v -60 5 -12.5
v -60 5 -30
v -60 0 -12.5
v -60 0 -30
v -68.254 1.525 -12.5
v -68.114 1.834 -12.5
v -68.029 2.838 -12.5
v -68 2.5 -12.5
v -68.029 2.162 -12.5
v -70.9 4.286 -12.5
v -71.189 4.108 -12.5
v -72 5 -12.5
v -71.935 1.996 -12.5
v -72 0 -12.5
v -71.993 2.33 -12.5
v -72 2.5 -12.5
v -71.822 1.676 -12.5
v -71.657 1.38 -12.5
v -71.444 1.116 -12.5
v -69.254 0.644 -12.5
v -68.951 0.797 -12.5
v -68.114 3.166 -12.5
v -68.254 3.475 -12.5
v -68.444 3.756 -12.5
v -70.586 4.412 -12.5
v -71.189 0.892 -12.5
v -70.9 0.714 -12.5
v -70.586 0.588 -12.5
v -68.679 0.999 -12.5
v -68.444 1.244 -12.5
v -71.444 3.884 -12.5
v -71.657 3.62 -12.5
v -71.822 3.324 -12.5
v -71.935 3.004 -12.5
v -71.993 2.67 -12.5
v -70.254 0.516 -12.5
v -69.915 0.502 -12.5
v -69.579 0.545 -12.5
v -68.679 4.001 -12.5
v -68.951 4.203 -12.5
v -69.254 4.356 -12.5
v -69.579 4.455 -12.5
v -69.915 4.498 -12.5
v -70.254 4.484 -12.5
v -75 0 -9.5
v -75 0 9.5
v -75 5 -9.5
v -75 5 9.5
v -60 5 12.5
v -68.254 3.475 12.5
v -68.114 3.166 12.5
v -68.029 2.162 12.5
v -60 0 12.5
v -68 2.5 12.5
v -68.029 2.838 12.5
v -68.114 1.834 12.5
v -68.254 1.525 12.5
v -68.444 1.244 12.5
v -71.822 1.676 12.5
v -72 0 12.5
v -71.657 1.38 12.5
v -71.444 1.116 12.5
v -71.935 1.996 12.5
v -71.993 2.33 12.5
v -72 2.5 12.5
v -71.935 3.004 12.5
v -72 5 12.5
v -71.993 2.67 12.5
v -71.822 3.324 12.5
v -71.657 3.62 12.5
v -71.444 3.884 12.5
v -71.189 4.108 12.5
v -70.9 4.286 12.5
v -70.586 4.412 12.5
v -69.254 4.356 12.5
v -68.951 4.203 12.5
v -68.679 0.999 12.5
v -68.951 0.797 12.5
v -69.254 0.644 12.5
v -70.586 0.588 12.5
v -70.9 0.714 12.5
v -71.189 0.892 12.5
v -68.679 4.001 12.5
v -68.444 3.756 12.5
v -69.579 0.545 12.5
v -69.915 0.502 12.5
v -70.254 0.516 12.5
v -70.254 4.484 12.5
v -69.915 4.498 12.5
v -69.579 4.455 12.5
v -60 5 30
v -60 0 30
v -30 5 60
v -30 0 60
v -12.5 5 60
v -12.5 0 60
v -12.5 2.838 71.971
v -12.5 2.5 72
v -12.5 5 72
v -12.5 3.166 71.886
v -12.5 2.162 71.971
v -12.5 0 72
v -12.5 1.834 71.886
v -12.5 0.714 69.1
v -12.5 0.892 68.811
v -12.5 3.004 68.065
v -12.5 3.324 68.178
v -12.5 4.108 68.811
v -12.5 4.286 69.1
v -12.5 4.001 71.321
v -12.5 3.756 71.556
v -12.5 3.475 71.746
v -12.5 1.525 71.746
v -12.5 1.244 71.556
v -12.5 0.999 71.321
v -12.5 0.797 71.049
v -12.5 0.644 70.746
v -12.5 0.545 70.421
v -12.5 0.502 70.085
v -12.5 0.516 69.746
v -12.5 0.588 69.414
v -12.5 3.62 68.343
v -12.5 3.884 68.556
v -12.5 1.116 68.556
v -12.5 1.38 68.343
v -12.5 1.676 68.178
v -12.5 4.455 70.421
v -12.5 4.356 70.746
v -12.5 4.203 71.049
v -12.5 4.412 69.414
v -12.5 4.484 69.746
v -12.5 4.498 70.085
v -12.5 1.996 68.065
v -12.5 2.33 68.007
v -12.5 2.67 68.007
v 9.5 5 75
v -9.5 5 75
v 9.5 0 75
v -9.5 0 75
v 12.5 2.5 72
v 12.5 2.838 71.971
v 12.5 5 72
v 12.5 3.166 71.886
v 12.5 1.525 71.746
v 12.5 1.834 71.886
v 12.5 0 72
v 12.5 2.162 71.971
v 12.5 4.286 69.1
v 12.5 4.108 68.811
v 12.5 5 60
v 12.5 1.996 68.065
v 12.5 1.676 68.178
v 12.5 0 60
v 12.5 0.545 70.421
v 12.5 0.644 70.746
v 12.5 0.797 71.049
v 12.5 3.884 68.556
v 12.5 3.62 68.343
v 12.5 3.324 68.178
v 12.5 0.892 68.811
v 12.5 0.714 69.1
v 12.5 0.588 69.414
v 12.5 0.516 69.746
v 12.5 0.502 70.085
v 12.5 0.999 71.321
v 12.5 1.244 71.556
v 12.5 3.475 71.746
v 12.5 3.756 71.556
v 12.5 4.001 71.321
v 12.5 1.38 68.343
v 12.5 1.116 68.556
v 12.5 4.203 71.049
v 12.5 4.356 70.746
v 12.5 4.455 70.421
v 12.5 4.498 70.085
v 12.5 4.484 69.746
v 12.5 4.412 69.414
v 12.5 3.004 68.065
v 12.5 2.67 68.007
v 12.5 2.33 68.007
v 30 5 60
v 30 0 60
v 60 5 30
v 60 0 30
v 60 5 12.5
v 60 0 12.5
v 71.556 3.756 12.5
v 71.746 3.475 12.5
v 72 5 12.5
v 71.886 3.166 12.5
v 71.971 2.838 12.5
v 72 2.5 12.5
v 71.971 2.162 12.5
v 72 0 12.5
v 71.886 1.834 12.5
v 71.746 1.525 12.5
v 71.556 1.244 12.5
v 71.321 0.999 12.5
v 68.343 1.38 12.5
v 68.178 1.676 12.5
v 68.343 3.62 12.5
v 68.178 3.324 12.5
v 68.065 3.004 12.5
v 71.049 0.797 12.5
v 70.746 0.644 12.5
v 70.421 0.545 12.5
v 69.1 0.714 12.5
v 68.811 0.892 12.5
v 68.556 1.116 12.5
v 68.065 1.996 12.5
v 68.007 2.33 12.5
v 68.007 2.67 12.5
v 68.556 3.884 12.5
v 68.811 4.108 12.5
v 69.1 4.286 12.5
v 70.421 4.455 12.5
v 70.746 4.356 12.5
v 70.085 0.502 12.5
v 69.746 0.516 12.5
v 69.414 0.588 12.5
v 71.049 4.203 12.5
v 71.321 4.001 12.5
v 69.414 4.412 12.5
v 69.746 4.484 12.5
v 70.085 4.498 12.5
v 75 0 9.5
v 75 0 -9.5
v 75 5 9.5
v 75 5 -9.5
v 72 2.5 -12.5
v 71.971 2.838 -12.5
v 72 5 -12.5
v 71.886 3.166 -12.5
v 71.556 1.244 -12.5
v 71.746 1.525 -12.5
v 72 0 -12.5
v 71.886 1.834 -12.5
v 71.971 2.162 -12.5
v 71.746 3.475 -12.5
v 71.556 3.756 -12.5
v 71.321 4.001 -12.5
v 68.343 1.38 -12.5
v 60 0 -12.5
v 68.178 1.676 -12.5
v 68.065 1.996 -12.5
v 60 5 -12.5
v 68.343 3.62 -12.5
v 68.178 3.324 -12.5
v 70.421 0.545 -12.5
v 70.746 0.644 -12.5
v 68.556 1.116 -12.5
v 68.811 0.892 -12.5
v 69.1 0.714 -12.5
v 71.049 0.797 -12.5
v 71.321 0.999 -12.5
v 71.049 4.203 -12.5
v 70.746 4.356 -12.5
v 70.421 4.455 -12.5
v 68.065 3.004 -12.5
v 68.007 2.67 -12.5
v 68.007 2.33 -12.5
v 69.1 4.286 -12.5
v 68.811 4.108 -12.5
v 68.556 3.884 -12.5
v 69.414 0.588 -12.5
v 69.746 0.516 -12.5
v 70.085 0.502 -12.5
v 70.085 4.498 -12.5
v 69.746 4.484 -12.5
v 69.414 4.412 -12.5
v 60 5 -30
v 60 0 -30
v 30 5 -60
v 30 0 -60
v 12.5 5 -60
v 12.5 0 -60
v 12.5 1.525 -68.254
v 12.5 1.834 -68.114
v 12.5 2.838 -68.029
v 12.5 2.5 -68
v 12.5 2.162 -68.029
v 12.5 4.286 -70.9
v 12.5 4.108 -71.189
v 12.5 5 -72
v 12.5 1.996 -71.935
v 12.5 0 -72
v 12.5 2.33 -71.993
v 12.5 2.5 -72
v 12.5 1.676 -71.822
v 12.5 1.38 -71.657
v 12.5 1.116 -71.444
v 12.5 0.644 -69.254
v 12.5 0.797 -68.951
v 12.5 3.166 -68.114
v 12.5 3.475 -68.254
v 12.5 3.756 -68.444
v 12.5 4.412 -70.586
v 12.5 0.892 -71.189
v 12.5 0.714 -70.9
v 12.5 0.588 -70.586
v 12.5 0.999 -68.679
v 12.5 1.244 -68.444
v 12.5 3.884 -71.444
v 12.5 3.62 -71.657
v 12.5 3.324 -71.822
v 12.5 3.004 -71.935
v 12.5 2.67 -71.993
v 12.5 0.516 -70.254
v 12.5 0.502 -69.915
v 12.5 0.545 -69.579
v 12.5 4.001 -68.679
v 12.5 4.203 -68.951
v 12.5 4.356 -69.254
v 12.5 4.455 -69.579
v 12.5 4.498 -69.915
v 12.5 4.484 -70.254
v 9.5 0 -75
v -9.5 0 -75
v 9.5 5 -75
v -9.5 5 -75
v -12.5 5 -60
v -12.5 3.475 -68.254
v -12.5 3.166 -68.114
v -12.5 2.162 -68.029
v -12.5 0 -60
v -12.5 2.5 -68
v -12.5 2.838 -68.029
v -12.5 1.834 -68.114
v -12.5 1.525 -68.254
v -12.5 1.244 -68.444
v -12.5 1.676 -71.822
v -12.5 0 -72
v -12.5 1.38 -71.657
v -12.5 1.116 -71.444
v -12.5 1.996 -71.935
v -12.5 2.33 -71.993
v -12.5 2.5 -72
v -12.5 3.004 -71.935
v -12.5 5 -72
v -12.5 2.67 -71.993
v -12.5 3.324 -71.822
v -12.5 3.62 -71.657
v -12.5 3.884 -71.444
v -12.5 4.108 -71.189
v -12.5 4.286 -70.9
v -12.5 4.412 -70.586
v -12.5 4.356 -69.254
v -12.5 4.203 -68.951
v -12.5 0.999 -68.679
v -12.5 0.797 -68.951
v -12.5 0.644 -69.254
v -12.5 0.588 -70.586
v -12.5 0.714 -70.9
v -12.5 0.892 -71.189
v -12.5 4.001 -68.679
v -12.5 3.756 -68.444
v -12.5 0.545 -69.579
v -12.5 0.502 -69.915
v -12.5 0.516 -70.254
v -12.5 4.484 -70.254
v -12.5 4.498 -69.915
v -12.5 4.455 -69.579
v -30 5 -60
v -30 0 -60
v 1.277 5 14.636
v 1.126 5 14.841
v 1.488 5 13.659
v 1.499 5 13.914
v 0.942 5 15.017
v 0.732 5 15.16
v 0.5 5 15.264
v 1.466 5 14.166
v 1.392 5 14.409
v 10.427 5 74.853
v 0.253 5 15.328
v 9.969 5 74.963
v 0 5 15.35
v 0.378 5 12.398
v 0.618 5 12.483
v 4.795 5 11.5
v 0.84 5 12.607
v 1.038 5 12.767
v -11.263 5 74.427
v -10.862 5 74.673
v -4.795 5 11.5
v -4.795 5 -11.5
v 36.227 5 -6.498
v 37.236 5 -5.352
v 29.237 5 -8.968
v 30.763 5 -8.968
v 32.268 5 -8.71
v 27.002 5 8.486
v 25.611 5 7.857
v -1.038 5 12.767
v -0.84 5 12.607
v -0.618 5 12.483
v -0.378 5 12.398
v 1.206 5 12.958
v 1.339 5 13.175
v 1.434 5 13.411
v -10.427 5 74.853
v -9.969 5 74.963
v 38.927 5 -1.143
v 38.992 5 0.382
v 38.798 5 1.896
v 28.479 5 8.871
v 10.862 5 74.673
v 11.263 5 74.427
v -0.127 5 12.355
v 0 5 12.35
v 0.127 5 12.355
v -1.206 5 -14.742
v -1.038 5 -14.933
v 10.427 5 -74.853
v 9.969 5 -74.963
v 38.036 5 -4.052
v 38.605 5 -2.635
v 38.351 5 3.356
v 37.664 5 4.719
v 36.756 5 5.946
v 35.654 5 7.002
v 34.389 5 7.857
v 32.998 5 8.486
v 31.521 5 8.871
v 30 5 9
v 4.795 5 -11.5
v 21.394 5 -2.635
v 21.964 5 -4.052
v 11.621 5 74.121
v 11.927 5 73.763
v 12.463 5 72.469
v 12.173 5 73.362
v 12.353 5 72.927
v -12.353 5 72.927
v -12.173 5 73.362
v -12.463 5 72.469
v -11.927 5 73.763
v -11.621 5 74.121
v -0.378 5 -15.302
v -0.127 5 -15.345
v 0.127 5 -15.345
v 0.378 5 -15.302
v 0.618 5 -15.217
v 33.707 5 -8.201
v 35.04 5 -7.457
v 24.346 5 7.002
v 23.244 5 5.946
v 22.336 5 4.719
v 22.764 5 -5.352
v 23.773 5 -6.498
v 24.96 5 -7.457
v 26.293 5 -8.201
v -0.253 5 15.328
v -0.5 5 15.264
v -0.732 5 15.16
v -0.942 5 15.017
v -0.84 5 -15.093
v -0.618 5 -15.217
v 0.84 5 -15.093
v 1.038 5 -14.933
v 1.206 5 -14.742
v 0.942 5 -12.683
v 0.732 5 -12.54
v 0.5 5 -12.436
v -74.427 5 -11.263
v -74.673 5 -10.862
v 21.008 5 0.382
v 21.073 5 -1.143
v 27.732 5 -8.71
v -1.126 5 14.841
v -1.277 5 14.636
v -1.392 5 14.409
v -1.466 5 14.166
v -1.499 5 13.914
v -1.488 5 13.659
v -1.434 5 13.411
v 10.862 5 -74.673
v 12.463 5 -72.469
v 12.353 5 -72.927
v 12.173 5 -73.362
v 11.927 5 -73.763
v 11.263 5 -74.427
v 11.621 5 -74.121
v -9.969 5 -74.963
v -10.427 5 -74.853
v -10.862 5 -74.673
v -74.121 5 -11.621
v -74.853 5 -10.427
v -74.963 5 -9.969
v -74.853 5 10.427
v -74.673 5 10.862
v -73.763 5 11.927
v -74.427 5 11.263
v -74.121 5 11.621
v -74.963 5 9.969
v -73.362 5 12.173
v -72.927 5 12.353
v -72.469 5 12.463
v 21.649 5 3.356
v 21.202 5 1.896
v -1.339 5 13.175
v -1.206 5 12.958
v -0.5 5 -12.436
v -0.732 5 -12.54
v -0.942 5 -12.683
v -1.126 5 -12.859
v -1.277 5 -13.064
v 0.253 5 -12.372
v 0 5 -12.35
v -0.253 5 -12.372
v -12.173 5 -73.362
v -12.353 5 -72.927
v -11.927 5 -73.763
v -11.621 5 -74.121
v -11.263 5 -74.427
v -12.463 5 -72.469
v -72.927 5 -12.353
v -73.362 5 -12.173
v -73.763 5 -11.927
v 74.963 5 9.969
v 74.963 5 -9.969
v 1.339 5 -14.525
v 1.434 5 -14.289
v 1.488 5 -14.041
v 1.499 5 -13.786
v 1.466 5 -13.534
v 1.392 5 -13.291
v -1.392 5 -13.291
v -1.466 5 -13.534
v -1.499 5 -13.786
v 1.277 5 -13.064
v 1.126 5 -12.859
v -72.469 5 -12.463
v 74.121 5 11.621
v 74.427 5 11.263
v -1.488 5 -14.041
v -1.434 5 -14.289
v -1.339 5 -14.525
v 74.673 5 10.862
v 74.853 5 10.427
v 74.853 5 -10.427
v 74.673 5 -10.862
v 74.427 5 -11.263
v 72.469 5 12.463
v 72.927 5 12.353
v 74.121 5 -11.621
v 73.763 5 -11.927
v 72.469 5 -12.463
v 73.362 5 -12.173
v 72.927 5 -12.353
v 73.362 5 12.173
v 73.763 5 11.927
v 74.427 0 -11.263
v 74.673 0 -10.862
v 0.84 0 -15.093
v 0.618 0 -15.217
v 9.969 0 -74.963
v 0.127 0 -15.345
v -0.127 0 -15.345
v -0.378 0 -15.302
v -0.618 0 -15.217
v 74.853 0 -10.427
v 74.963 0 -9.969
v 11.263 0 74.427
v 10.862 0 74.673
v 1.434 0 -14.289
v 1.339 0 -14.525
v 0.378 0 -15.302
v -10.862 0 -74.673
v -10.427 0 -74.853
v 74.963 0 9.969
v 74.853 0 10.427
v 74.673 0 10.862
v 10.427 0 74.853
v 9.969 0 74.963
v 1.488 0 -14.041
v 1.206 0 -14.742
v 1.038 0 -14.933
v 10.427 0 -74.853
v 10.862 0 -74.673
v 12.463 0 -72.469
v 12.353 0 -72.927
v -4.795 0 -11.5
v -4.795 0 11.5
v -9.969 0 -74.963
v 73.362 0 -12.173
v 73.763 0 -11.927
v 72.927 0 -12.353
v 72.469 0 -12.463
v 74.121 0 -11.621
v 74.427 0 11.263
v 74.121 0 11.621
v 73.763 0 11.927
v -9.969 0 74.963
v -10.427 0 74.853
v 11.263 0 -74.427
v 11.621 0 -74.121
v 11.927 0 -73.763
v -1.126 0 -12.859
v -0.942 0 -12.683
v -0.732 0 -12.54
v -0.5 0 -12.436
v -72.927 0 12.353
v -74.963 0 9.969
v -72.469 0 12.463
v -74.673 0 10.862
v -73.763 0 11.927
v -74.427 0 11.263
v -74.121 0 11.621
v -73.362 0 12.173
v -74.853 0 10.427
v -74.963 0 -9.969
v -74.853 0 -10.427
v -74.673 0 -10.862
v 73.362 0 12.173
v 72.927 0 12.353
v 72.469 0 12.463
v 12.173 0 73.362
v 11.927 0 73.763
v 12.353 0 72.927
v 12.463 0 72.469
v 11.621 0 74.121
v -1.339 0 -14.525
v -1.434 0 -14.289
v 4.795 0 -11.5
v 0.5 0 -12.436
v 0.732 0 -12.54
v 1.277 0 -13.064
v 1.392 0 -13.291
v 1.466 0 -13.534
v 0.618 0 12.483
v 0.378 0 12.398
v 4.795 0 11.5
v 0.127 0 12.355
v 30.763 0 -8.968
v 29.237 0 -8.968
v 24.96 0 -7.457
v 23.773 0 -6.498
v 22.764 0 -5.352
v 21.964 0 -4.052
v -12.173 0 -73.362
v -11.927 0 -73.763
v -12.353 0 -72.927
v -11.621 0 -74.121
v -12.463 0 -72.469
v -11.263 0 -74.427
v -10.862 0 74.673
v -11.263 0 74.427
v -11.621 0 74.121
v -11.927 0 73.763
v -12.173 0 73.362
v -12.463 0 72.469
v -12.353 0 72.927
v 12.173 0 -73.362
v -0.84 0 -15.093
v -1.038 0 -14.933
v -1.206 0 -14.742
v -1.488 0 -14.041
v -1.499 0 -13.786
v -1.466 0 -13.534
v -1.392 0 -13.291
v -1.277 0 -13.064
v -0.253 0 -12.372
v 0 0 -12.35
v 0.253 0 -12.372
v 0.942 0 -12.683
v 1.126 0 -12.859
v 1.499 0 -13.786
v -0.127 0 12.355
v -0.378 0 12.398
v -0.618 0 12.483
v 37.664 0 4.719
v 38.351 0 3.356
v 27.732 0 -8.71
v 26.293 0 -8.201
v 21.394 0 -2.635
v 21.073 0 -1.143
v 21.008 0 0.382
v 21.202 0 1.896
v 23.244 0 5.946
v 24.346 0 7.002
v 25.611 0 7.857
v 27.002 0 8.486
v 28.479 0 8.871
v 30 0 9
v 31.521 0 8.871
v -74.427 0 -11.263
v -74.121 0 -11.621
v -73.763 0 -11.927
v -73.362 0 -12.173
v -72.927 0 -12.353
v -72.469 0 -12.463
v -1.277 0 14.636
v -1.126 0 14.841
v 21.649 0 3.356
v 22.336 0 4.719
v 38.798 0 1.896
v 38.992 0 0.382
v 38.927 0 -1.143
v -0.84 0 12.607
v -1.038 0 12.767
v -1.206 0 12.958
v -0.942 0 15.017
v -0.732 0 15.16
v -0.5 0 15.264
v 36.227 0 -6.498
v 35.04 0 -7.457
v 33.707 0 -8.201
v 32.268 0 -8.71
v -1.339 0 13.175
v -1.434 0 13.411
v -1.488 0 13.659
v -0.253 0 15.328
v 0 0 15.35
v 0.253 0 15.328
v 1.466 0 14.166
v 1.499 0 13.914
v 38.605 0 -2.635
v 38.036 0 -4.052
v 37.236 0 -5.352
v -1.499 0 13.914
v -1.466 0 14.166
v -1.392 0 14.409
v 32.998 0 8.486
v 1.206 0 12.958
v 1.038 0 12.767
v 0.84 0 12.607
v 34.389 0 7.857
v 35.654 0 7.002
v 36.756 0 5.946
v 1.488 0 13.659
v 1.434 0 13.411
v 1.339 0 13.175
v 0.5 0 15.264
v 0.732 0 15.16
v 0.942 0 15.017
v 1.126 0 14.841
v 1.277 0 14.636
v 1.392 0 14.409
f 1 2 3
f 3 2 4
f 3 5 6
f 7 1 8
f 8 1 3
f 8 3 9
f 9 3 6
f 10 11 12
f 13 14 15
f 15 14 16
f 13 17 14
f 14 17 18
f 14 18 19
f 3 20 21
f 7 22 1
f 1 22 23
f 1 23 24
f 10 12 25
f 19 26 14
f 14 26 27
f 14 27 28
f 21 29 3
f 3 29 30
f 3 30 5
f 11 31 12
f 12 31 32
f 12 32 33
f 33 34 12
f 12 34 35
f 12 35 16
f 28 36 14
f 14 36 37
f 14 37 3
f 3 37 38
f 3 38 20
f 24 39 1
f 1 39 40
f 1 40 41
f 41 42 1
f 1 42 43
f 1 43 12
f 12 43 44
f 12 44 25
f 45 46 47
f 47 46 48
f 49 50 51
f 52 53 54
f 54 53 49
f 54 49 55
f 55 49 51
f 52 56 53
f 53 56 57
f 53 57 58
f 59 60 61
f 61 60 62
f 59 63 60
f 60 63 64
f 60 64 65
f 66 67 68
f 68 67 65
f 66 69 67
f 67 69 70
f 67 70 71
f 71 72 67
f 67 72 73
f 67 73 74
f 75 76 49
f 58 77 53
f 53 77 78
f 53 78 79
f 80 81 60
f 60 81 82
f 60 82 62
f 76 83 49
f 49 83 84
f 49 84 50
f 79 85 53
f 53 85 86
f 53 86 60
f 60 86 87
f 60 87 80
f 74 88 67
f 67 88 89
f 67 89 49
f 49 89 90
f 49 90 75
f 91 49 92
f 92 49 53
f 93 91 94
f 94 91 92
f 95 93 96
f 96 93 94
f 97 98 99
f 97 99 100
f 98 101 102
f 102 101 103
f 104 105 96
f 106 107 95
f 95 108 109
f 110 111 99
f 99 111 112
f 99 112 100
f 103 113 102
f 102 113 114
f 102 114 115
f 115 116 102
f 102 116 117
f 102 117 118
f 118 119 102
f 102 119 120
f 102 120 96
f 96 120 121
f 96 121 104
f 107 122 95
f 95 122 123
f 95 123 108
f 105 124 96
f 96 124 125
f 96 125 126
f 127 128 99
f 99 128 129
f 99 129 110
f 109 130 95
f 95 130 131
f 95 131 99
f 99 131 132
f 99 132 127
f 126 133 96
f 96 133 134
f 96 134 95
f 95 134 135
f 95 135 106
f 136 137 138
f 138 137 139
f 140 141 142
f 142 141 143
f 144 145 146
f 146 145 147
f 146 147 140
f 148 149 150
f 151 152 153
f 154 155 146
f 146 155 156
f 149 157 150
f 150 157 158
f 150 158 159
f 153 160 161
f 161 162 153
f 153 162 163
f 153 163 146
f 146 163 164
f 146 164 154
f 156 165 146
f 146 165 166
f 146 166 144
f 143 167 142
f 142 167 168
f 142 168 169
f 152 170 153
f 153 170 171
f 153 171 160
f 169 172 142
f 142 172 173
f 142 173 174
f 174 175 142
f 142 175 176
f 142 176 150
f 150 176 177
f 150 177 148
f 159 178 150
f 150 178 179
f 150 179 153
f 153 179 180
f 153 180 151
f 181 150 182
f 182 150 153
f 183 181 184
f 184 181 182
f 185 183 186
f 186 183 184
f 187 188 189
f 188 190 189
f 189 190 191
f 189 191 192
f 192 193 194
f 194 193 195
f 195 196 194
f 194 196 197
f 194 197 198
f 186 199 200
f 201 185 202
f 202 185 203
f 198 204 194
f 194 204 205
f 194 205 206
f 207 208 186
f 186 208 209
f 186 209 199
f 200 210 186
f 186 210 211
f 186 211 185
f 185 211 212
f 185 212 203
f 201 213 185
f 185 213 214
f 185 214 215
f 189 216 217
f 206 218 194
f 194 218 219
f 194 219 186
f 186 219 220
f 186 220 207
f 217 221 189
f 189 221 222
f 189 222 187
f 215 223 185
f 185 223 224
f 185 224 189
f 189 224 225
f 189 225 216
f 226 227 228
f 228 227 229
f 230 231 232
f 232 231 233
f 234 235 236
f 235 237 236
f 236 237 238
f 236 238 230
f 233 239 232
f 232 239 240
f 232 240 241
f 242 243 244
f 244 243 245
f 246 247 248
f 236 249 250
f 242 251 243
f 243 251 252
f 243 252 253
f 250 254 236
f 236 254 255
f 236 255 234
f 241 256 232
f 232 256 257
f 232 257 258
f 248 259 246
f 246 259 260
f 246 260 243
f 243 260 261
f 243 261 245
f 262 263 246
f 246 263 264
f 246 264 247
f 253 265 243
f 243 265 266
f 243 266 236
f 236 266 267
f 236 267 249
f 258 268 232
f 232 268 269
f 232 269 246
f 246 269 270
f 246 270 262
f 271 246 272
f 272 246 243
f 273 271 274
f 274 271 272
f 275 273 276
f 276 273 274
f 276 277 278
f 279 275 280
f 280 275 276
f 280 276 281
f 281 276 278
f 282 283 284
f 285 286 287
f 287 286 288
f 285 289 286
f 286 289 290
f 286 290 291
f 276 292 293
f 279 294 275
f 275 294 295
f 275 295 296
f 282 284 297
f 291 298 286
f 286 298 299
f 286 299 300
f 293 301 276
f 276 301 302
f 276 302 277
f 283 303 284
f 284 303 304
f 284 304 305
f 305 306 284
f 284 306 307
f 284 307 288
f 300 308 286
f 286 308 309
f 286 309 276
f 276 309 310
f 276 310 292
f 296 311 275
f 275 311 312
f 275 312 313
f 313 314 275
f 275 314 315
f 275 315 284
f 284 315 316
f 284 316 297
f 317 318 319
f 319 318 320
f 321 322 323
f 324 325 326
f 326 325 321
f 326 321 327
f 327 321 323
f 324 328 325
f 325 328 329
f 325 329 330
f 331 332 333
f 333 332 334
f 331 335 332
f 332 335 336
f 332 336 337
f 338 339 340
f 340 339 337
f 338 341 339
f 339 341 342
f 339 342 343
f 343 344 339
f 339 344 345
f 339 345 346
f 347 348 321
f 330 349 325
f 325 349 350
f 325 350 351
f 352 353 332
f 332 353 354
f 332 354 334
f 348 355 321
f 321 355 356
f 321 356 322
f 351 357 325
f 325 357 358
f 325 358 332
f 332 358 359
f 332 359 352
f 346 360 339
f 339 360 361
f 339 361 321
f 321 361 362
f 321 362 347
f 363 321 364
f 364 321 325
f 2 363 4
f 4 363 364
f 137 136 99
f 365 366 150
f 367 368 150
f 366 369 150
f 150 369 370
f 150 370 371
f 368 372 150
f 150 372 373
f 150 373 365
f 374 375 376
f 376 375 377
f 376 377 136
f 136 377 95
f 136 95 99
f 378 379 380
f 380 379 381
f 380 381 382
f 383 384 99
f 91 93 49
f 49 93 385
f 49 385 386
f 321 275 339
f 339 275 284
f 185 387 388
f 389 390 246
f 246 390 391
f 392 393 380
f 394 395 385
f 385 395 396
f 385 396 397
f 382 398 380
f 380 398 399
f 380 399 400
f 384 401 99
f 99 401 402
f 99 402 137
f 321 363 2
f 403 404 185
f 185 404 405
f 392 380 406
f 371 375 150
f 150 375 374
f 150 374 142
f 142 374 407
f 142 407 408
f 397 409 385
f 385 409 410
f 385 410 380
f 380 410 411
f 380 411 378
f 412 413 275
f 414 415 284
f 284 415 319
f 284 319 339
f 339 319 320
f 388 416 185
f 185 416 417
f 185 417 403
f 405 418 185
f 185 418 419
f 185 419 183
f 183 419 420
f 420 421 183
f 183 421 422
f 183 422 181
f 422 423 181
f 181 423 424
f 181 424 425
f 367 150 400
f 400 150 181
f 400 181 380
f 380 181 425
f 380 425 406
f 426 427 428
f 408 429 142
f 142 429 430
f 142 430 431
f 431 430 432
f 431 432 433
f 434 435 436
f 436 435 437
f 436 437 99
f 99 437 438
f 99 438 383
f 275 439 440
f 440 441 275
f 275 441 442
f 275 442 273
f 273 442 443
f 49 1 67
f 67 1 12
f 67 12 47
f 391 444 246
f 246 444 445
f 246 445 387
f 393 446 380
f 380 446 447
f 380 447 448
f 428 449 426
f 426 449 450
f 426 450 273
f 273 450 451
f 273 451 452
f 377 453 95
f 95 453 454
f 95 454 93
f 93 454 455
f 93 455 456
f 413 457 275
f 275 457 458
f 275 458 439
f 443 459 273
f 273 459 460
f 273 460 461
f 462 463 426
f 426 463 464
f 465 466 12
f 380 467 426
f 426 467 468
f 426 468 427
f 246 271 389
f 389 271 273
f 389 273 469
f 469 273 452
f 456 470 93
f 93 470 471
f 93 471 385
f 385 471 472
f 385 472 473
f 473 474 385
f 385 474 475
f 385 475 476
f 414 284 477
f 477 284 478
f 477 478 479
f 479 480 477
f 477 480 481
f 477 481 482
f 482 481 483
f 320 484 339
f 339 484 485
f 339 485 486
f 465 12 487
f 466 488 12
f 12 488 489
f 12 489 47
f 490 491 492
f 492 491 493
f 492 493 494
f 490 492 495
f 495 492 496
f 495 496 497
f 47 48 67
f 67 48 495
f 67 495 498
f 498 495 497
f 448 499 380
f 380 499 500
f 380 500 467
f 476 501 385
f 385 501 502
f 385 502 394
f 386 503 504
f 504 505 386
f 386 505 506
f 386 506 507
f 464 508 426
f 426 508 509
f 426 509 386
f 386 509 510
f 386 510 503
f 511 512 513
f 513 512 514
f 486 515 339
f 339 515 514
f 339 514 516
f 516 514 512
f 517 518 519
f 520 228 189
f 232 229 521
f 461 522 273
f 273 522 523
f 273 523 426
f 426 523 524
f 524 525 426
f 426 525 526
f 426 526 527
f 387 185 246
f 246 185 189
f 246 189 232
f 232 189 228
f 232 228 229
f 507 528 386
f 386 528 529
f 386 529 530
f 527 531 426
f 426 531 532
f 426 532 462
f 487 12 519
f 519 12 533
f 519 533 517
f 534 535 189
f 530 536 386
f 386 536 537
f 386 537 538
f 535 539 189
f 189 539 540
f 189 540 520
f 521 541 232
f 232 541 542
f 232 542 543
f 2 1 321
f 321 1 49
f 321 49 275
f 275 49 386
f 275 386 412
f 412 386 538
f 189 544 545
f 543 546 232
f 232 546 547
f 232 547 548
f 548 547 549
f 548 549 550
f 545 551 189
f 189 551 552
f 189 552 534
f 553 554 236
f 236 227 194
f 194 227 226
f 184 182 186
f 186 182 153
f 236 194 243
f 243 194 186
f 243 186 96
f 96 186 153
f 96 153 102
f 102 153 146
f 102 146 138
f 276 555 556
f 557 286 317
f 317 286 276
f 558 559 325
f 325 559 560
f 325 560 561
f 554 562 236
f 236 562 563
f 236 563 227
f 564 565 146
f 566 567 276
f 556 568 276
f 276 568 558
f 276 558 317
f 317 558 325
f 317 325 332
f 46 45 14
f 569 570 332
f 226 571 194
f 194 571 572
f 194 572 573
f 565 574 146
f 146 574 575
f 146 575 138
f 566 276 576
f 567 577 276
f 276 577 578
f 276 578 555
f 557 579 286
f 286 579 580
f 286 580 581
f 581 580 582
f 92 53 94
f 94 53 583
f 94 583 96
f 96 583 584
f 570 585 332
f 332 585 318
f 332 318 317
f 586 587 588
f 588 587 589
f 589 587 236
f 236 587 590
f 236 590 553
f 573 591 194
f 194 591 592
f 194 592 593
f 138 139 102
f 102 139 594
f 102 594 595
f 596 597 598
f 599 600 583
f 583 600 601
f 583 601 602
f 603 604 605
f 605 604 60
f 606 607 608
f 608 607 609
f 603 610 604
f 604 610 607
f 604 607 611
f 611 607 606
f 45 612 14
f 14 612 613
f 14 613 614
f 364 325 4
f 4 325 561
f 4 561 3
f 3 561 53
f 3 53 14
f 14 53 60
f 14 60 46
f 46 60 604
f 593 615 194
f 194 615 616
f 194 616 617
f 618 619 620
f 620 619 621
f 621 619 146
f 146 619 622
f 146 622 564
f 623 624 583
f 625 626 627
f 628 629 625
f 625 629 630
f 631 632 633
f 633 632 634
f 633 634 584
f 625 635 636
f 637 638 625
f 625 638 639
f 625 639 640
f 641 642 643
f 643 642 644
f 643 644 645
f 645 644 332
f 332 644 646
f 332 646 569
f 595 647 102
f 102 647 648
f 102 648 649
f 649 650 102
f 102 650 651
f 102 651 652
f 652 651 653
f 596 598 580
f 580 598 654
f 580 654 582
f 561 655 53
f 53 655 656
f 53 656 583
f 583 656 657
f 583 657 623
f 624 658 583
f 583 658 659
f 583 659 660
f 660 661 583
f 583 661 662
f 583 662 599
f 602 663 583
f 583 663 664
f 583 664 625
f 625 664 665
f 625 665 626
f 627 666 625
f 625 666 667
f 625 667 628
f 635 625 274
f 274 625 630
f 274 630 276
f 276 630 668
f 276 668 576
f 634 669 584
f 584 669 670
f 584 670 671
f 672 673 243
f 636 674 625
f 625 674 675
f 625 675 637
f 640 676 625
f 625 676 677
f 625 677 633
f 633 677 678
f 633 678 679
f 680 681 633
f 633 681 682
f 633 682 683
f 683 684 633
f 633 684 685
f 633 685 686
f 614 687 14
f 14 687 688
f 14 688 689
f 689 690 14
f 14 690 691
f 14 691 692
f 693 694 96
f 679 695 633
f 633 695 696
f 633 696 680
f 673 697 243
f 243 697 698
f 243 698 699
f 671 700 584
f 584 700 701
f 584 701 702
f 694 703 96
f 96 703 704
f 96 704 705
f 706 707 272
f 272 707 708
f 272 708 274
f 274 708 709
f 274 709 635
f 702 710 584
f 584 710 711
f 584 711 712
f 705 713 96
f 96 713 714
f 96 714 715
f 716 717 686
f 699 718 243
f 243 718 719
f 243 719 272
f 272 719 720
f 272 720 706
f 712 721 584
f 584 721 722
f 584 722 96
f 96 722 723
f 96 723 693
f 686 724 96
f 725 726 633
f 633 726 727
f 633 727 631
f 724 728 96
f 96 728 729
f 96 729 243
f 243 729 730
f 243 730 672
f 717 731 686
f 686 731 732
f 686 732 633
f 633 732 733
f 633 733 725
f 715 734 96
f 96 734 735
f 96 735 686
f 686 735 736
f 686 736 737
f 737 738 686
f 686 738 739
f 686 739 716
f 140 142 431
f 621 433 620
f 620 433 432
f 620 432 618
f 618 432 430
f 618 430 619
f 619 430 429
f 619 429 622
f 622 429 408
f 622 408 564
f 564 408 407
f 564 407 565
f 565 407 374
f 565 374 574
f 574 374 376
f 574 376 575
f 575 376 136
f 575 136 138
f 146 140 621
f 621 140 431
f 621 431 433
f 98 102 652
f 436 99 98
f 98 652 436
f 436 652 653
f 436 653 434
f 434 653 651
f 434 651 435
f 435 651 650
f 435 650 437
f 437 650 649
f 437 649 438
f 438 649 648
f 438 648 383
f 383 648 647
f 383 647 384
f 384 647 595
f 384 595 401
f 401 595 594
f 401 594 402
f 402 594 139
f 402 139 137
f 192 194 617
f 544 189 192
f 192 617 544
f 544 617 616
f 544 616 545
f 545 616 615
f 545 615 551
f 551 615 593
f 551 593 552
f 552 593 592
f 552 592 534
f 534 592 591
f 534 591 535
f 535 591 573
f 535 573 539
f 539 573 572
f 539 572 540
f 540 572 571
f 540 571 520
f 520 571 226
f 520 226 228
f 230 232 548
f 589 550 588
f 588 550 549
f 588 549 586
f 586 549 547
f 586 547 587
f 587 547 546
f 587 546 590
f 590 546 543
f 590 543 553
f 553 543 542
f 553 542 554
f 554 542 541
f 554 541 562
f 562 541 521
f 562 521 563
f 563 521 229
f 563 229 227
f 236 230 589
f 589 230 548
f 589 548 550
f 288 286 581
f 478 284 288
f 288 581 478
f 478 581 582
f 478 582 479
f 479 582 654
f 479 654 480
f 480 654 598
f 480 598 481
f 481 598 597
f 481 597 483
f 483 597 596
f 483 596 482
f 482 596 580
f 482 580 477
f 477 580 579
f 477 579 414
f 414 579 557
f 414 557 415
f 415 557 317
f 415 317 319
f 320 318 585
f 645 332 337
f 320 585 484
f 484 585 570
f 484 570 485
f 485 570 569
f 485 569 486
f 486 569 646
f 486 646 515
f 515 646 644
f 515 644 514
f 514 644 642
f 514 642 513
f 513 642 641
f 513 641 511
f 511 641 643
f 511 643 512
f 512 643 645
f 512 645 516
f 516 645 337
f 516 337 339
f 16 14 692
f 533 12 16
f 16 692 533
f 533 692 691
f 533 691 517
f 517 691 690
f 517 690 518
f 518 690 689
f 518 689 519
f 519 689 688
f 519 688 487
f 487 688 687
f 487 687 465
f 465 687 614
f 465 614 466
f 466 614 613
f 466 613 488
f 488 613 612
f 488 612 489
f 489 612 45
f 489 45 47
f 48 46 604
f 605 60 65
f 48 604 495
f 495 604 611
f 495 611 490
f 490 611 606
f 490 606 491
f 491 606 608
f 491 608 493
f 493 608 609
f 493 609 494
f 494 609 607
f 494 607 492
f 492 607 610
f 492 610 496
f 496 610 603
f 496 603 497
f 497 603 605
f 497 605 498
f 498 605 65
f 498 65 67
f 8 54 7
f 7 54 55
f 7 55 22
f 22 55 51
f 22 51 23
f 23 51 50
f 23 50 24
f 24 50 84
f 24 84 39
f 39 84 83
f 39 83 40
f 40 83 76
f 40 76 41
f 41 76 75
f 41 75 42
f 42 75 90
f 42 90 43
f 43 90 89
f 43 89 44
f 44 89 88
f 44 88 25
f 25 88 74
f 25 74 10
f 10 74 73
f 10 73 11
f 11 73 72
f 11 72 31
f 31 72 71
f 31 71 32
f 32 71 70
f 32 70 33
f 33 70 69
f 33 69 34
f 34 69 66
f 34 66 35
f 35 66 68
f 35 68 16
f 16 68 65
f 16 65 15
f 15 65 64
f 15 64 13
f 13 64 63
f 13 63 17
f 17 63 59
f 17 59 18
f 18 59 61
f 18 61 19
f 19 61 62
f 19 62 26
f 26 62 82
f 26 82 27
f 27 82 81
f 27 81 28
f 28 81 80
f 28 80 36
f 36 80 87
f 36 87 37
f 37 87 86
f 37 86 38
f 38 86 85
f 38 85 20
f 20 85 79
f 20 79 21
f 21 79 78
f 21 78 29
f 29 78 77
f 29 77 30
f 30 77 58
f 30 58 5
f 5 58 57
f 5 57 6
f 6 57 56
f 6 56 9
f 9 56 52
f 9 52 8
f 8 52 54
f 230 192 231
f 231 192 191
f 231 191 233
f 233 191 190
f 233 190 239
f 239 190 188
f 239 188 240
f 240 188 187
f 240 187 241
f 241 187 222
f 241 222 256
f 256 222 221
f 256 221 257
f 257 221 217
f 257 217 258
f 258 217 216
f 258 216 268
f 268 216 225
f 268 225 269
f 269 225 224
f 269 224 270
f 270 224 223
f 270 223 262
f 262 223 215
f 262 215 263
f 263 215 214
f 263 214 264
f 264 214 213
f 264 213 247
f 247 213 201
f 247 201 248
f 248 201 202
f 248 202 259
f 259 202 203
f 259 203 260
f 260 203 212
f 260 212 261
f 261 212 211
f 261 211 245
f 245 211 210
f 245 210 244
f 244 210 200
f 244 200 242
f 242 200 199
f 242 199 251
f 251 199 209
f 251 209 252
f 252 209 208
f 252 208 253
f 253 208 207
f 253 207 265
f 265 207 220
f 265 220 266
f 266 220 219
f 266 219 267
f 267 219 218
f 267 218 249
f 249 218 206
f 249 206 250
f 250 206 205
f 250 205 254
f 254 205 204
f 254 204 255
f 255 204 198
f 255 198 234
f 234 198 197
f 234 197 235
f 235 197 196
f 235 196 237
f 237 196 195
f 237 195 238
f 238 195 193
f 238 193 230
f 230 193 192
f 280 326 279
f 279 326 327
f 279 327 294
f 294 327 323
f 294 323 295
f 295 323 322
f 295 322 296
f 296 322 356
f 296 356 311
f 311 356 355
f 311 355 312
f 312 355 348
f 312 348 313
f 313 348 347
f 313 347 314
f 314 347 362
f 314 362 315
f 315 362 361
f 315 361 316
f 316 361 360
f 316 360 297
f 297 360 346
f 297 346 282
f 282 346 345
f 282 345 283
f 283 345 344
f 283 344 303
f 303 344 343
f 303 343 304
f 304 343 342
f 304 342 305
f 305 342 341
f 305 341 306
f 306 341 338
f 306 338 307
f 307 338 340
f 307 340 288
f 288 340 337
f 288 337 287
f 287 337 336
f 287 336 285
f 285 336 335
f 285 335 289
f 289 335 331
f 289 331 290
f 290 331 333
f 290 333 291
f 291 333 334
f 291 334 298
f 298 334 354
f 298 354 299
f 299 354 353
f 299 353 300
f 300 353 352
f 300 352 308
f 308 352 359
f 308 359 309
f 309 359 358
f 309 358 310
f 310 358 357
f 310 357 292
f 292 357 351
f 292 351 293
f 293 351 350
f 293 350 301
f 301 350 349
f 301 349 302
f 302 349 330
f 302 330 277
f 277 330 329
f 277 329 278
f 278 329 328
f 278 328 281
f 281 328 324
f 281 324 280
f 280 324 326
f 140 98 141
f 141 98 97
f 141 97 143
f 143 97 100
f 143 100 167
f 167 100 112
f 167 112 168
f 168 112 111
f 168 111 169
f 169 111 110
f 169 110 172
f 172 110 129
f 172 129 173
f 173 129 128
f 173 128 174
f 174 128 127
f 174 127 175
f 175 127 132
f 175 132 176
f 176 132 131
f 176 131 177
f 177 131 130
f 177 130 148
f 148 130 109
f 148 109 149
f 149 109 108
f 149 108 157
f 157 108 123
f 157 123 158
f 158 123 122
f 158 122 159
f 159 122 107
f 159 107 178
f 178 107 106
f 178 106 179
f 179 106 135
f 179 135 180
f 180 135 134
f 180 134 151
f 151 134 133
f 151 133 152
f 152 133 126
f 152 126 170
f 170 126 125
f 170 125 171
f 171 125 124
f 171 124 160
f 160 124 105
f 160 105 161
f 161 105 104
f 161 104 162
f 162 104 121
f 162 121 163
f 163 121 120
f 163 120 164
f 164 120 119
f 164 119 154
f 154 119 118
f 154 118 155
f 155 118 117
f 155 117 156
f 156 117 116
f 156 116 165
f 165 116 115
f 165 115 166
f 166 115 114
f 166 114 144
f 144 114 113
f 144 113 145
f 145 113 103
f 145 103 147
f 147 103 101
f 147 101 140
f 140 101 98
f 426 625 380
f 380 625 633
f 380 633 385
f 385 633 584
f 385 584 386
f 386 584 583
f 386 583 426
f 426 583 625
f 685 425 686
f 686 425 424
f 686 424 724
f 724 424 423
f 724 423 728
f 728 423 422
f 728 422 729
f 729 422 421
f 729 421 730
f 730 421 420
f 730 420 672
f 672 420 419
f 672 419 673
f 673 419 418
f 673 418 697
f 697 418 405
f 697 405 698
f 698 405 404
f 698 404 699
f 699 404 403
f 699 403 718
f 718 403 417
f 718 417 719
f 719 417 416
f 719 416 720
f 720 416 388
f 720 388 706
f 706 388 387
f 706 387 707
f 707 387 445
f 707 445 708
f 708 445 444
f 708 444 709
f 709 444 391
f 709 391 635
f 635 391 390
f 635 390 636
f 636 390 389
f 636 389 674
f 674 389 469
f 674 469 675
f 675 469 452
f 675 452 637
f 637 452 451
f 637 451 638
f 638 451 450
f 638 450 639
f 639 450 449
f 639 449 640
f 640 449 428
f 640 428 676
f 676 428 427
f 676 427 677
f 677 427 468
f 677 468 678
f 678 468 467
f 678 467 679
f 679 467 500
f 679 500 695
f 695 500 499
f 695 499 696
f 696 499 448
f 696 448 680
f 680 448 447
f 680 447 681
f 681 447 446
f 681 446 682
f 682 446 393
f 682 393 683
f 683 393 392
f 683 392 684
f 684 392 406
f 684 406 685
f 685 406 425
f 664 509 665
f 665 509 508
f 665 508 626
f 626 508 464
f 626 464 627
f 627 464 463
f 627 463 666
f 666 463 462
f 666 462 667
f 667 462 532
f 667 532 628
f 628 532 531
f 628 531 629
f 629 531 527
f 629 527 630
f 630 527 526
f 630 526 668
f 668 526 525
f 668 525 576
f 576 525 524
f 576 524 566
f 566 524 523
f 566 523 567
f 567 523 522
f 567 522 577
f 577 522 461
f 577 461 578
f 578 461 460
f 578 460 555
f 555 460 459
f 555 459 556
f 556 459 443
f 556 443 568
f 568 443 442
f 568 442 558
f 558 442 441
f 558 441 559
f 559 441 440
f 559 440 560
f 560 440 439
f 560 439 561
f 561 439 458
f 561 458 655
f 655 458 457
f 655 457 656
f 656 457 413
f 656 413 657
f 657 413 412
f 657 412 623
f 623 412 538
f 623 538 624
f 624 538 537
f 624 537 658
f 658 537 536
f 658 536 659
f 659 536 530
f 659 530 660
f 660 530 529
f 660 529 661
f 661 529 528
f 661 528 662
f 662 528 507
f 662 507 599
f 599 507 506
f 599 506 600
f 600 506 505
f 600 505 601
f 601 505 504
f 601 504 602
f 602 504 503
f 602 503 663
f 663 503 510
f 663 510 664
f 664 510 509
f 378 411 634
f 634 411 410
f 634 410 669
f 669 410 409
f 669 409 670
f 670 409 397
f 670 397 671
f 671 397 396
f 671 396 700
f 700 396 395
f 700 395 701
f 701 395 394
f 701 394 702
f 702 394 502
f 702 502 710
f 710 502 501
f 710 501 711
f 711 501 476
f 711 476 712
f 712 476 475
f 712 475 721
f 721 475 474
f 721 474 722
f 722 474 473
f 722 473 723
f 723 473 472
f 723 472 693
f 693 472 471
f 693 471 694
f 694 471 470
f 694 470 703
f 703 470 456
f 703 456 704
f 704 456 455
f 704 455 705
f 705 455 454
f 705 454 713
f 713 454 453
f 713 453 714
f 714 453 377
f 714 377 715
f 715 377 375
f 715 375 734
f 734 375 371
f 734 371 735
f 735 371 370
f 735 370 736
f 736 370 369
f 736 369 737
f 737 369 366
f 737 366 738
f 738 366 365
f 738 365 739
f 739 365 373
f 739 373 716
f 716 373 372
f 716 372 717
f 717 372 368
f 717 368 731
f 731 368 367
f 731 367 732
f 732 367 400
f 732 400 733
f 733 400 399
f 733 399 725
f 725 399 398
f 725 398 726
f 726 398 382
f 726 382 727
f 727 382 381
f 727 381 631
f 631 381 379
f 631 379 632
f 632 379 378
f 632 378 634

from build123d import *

# Parameters (mm, degrees)
EXTRUDE_1_DEPTH     = 5
FILLET_1_R          = 3
SKETCH_11_R         = 2
CUT_EXTRUDE_6_DEPTH = 88.5
SKETCH_12_R         = 2
CUT_EXTRUDE_7_DEPTH = 88.5
SKETCH_13_R         = 1.5
SKETCH_13_R_2       = 9
SKETCH_13_W         = 9.590692188
SKETCH_13_H         = 23
CUT_EXTRUDE_8_DEPTH = 10


with BuildPart() as part:
    # 스케치1 → 보스-돌출1 (new body)
    with BuildSketch(Plane(origin=(0, 0, 0), x_dir=(1, 0, 0), z_dir=(0, 1, 0))):
        Polygon((-60, -30), (-30, -60), (-12.5, -60), (-12.5, -75), (12.5, -75), (12.5, -60), (30, -60), (60, -30), (60, -12.5), (75, -12.5), (75, 12.5), (60, 12.5), (60, 30), (30, 60), (12.5, 60), (12.5, 75), (-12.5, 75), (-12.5, 60), (-30, 60), (-60, 30), (-60, 12.5), (-75, 12.5), (-75, -12.5), (-60, -12.5), align=None)
    extrude(amount=EXTRUDE_1_DEPTH)

    # 필렛1
    fillet_1_edges = [part.edges().sort_by_distance(p)[0] for p in [
        (-12.5, 2.5, -75),
        (12.5, 2.5, -75),
        (75, 2.5, -12.5),
        (75, 2.5, 12.5),
        (12.5, 2.5, 75),
        (-12.5, 2.5, 75),
        (-75, 2.5, 12.5),
        (-75, 2.5, -12.5),
    ]]
    fillet(fillet_1_edges, radius=FILLET_1_R)

    # 스케치11 → 컷-돌출6 (cut, through all)
    with BuildSketch(Plane.XY.offset(12.5)):
        with Locations((-70, 2.5)):
            Circle(SKETCH_11_R)
        with Locations((70, 2.5)):
            Circle(SKETCH_11_R)
    extrude(amount=-CUT_EXTRUDE_6_DEPTH, mode=Mode.SUBTRACT)

    # 스케치12 → 컷-돌출7 (cut, through all)
    with BuildSketch(Plane.ZY.offset(12.5)):
        with Locations((-70, 2.5)):
            Circle(SKETCH_12_R)
        with Locations((70, 2.5)):
            Circle(SKETCH_12_R)
    extrude(amount=-CUT_EXTRUDE_7_DEPTH, mode=Mode.SUBTRACT)

    # 스케치13 → 컷-돌출8 (cut)
    with BuildSketch(Plane(origin=(0, 5, 0), x_dir=(1, 0, 0), z_dir=(0, 1, 0))):
        with Locations((0, 13.85)):
            Circle(SKETCH_13_R)
        with Locations((30, 0)):
            Circle(SKETCH_13_R_2)
        with Locations((0, -13.85)):
            Circle(SKETCH_13_R)
        Rectangle(SKETCH_13_W, SKETCH_13_H)
    extrude(amount=-CUT_EXTRUDE_8_DEPTH, mode=Mode.SUBTRACT)


solid = part.part
